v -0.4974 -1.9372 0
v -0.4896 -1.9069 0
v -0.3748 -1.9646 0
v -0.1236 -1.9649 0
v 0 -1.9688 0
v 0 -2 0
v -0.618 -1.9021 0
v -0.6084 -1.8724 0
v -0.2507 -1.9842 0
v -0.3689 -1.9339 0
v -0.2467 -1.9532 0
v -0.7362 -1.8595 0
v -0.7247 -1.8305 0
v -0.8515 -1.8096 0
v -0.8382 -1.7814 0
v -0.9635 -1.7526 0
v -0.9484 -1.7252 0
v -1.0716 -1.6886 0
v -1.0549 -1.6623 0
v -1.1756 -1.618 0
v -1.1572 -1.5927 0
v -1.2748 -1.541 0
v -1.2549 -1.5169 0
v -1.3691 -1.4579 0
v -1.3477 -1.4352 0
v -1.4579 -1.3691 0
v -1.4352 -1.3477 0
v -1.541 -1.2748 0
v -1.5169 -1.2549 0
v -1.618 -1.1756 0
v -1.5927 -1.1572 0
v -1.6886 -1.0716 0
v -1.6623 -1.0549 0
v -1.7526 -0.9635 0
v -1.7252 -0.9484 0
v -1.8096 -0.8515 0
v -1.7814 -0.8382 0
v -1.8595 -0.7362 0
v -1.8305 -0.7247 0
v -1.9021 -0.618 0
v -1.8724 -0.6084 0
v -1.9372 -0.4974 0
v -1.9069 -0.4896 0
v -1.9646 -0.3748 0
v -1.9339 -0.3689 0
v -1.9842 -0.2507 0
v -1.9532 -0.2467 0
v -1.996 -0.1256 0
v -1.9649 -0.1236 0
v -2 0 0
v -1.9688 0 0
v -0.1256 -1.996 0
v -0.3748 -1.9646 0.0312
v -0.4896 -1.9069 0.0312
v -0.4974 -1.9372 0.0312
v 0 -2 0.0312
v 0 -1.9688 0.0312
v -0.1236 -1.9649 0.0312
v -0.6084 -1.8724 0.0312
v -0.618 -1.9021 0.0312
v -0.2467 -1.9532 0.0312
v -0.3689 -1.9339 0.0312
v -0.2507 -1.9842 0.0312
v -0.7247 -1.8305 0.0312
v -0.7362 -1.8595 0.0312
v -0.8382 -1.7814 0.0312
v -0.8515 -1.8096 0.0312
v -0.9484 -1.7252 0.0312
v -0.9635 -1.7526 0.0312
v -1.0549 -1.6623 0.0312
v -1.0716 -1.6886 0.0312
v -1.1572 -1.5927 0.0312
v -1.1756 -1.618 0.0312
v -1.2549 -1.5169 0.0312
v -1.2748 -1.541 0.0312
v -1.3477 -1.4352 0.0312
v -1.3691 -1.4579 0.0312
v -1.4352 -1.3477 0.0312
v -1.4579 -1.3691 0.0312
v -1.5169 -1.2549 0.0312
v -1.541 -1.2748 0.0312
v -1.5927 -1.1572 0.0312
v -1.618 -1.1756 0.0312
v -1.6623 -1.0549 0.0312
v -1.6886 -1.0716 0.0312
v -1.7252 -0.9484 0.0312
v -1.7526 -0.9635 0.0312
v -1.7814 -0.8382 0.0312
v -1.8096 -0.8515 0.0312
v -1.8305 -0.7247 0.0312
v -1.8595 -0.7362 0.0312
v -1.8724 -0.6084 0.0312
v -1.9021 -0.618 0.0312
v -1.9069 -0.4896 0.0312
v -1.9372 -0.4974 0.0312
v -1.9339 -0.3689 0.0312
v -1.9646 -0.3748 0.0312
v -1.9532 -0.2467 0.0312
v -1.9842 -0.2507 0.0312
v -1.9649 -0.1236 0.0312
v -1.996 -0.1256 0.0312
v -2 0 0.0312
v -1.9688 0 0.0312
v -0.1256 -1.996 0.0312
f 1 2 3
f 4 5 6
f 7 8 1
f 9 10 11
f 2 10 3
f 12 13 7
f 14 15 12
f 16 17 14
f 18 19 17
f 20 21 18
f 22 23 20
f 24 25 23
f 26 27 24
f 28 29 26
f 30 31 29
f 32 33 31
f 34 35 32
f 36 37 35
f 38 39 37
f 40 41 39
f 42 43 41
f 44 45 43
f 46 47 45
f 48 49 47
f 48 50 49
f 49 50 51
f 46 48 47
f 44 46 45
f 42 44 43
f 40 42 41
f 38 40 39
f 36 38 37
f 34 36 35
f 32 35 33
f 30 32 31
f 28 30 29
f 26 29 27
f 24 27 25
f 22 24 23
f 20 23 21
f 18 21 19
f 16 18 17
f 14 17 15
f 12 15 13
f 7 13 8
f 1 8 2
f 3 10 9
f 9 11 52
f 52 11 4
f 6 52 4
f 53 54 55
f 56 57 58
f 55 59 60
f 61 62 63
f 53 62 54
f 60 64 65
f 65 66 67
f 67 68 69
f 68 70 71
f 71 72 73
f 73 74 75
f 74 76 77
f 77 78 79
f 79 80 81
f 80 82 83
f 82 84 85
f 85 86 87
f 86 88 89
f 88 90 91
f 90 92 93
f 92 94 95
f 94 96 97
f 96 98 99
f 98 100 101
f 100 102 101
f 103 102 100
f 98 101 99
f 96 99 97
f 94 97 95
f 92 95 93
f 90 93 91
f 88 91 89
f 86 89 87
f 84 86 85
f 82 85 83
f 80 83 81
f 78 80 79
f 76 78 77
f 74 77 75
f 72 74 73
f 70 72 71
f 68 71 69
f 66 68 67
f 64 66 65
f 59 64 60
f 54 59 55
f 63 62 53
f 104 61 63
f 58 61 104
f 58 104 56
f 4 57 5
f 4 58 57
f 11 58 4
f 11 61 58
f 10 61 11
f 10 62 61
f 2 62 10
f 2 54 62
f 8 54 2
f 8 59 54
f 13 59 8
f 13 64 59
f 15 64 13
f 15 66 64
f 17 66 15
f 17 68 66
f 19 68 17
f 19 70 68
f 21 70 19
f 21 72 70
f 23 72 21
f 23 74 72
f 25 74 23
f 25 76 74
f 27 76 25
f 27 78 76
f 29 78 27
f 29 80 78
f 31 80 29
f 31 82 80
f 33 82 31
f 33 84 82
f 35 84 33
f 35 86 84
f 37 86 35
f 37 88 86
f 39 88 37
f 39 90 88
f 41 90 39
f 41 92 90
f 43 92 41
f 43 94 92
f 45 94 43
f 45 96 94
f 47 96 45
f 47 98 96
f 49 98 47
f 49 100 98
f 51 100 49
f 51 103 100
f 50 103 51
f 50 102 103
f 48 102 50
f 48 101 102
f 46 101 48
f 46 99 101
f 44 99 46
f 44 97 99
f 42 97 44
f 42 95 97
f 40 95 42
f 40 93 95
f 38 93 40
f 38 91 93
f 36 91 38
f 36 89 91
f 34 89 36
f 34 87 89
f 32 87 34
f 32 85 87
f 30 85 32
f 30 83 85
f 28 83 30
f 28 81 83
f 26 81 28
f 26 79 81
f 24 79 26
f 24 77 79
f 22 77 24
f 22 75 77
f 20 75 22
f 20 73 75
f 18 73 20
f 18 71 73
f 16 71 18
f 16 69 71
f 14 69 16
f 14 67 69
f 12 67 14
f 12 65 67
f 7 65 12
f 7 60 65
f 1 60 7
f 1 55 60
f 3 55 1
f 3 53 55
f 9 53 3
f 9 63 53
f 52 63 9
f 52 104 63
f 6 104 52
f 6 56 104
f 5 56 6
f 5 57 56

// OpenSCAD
// file: MMlib/MMlib/MMlib/circle_strip.scad
//#####################################
// circle_strip
// (c) 2021 - Roie R. Black
//=====================================
$fn = 100;


module circle_strip(r=3, t=0.5) {
  difference() {
    circle(r);
    circle(r-t);
  }
}

circular_strip();
// file: MMlib/MMlib/circular_arc_strip.scad
//#####################################
// circular_arc_strip
// (c) 2021 - Roie R. Black
//=====================================
$fn = 100;
use <MMlib/circle_strip.scad>


module circular_arc_strip(
    r=3,
    start_angle=0, end_angle=270,
    t=0.5
  ) {
  dang = (end_angle-start_angle)/4;
  a0 = start_angle;
  a1 = a0 + dang;
  a2 = a1 + dang;
  a3 = a2 + dang;
  a4 = a3 + dang;
  pr = r * sqrt(2) + 1;
  intersection() {
    polygon([
      [0,0],
      [pr*cos(a0), pr*sin(a0)],
      [pr*cos(a1), pr*sin(a1)],
      [pr*cos(a2), pr*sin(a2)],
      [pr*cos(a3), pr*sin(a3)],
      [pr*cos(a4), pr*sin(a4)],
      [0,0]
    ]);
    circle_strip(r,t);
  }
}

circular_arc_strip();
// file: ../../../constraints.scad
//####################################
// Math-Magik LPP - Design Constraints
// (c) 2021 by Roie R. Black
//====================================

// AMA Rules for event 208
//------------------------------------

max_overall_length = 20;
max_projected_wing_span = 18;
max_bearing_to_rear_hook = 10;
max_wing_chord = 5;
max_stab_span = 12;
max_stab_chord = 4;
max_prop_diameter = 12;
// file: MMlib/circular_arc_spar.scad
//#####################################
// circular_arc_spar
// (c) 2021 - Roie R. Black
//=====================================
$fn = 100;

use <MMlib/circular_arc_strip.scad>


module circular_arc_spar(
    r=3,
    start_angle=0, end_angle=270,
    t=0.5,
    h=0.5
  ) {
  linear_extrude(height=h)
    circular_arc_strip(r,start_angle, end_angle, t);
}

circular_arc_spar();
// file: ../../wing_data.scad
//#####################################
// wing.data
// (c) 2021 by Roie R. Black
//=====================================
include <../constraints.scad>

// center section dimensions
center_span = 12;
spar_size = 1/16;
rib_chord = max_wing_chord - 2 * spar_size;
rib_camber = 4;
num_center_ribs = 5;

// tip section dimensions
tip_dihedral = 1.75;
tip_radius = 2;
a = tip_dihedral;
b = (max_projected_wing_span - center_span)/2;
tip_span = sqrt(a*a + b*b);
tip_dihedral_angle = atan2(a,b);
tip_le_span = tip_span - tip_radius;
tip_rib_chord = max_wing_chord - tip_radius - spar_size;

echo(tip_dihedral_angle);
// main file
//########################################
// tip_arc.scad
// (c) 2021 - Roie R. Black
//****************************************
include <../../wing_data.scad>

use <MMlib/circular_arc_spar.scad>

module tip_arc(r=tip_radius, size=spar_size/2) {
    circular_arc_spar(r, 180,270, size,size);
}

tip_arc();
